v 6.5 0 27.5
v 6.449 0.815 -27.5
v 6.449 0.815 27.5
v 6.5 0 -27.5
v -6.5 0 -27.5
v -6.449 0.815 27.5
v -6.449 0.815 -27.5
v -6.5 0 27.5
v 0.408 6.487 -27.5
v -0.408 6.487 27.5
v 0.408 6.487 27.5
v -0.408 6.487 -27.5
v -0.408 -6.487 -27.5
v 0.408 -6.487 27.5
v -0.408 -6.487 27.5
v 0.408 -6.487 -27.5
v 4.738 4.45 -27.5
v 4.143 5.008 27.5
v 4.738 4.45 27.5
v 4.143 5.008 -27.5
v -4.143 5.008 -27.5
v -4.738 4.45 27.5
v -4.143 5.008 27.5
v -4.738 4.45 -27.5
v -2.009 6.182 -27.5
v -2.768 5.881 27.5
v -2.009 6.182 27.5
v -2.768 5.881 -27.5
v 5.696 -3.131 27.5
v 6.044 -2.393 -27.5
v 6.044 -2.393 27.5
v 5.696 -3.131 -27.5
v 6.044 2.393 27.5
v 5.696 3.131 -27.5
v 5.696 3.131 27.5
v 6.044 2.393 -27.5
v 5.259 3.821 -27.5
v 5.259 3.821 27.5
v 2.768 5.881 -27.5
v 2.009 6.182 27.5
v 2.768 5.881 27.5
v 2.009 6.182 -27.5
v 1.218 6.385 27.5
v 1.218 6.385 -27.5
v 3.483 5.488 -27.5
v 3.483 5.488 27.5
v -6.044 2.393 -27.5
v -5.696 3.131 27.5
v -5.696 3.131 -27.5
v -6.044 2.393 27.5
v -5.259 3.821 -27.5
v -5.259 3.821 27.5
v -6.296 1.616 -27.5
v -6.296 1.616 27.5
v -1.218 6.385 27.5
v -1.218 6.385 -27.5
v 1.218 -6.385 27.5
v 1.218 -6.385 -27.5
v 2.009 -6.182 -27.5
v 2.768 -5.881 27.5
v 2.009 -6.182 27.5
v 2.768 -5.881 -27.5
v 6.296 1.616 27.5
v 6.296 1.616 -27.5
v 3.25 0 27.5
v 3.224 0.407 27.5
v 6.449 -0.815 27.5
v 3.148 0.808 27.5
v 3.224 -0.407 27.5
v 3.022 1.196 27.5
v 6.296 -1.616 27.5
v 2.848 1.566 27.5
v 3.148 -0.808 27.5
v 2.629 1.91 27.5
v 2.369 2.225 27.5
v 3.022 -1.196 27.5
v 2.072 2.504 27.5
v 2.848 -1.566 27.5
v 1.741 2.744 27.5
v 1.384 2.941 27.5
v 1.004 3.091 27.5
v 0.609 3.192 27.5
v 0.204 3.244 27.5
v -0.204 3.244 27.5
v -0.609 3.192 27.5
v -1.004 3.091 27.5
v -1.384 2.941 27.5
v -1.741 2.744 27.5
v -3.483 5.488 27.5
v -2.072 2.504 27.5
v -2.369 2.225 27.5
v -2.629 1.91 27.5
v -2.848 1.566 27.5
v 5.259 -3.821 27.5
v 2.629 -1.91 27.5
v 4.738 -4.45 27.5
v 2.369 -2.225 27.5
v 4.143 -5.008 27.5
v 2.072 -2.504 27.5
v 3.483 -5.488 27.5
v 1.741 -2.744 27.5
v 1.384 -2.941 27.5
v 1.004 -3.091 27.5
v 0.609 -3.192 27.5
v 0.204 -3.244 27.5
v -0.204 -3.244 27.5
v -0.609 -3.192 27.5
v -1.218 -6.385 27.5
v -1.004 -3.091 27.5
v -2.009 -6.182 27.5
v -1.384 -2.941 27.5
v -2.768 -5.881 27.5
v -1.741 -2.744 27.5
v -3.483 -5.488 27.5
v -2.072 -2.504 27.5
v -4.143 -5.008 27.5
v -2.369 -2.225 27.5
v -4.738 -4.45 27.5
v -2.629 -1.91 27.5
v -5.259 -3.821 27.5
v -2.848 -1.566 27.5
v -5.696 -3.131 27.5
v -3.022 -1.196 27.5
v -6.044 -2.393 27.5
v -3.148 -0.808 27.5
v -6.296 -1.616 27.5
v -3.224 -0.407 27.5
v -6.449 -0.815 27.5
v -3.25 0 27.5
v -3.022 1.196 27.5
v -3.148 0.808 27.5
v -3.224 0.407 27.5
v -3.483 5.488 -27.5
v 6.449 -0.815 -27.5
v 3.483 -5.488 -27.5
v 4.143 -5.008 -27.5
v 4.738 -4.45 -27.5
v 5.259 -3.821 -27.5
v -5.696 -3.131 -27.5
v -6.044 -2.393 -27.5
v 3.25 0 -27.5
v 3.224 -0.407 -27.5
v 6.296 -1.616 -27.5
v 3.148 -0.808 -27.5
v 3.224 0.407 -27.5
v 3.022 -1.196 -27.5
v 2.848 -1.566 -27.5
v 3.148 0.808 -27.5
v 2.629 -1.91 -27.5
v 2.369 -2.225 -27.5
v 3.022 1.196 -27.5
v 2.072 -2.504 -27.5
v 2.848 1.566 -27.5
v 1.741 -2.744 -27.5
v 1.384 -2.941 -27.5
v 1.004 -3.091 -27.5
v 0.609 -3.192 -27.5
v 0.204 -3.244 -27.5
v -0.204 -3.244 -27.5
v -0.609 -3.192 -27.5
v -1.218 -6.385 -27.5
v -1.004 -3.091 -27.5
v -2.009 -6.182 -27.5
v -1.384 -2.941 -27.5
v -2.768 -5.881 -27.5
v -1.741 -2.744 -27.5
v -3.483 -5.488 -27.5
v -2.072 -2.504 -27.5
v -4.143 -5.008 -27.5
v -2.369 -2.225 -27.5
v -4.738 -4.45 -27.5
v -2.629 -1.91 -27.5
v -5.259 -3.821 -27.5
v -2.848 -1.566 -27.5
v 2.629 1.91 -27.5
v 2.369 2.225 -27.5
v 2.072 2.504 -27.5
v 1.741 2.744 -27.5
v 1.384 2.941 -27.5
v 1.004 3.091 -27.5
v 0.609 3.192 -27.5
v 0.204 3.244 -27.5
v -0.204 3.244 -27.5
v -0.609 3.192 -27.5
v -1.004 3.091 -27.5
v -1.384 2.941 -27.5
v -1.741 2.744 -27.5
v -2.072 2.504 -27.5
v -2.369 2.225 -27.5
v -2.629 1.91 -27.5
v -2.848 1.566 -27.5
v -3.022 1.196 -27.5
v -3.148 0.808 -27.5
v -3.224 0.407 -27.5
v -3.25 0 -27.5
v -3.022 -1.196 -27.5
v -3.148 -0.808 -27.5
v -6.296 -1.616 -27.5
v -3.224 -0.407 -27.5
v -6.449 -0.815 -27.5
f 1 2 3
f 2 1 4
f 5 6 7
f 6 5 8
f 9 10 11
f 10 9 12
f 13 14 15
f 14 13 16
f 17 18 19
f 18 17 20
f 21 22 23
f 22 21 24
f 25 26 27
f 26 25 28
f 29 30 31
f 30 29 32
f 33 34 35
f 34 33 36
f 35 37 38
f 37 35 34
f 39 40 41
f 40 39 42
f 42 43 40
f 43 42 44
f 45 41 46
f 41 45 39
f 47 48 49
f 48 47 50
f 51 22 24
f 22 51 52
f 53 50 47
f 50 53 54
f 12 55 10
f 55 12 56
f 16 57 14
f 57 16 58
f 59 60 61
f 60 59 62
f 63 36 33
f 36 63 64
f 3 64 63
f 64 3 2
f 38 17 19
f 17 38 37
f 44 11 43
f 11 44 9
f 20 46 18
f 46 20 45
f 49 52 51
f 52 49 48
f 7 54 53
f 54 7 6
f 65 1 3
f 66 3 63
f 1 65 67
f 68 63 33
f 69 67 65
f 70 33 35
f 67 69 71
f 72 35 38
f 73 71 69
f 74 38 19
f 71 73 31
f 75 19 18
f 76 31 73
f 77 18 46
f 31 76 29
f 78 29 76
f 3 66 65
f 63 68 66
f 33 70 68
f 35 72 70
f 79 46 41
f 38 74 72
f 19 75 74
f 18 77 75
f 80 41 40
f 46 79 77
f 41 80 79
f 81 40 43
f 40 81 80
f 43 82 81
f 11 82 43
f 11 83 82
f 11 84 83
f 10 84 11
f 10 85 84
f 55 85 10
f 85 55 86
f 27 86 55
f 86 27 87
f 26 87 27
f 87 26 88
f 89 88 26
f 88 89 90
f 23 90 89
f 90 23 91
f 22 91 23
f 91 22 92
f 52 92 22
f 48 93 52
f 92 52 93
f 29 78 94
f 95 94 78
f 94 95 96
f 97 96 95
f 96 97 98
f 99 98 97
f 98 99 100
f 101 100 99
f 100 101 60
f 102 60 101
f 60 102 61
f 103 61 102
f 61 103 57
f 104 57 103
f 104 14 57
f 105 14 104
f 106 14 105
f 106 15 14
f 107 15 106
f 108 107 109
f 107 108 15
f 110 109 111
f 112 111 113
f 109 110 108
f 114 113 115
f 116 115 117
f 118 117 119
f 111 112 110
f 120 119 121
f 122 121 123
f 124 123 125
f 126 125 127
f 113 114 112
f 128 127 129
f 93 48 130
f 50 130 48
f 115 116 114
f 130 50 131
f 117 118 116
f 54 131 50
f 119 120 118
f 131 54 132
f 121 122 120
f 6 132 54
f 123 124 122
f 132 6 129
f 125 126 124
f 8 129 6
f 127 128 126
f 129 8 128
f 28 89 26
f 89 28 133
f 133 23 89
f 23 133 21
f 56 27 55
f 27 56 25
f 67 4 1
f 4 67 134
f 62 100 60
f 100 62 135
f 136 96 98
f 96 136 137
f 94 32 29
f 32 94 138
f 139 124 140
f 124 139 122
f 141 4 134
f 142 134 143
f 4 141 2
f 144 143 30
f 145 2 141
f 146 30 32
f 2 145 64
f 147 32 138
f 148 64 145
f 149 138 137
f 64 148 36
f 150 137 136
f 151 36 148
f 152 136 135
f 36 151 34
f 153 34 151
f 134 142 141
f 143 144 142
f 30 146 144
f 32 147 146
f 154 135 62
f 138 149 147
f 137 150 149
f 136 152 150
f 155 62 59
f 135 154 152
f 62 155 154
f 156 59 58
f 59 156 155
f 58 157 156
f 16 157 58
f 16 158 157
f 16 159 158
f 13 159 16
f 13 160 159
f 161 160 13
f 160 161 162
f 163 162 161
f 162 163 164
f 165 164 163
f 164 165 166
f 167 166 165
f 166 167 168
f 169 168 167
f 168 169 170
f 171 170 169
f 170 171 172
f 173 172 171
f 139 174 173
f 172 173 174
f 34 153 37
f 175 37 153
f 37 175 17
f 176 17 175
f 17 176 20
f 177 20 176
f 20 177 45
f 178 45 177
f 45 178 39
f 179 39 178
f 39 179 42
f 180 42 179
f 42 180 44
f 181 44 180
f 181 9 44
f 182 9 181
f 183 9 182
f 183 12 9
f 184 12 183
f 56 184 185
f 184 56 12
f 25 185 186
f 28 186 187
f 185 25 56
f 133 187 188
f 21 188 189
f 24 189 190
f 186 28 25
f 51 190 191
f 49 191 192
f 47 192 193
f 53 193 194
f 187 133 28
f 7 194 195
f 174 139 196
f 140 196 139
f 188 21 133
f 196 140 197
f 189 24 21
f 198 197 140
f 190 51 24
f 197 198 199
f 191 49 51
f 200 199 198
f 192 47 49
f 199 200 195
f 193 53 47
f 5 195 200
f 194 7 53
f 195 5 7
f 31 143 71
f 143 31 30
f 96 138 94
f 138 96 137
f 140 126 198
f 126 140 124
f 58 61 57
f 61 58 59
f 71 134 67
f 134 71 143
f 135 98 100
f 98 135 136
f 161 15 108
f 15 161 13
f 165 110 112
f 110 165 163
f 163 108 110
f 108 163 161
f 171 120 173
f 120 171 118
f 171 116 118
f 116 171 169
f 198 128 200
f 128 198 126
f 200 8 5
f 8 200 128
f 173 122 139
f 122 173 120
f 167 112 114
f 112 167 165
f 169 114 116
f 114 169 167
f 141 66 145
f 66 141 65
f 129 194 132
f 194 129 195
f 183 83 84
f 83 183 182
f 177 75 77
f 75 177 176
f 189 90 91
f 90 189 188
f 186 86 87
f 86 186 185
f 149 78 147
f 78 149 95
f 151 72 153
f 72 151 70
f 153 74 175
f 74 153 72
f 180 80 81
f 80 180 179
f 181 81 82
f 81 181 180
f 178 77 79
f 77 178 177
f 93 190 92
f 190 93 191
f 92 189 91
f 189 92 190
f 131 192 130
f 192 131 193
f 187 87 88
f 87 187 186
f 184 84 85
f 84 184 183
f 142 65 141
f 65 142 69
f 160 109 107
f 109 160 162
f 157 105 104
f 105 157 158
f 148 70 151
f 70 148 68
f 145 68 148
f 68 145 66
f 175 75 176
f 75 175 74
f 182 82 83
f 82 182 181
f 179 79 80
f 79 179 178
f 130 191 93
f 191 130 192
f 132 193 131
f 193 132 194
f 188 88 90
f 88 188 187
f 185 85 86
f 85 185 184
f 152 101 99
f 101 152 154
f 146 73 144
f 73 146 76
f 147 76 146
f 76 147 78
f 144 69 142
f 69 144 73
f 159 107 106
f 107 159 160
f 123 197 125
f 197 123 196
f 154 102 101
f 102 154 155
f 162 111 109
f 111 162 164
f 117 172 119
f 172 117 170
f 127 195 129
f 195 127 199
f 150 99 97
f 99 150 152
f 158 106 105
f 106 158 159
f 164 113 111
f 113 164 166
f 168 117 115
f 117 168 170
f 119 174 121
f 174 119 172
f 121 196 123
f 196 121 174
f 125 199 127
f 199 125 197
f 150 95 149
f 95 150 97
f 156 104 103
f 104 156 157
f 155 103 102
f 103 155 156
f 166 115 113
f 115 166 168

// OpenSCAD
$fn = 50;


difference() {
	union() {
		translate(v = [0, 0, -27.5000000000]) {
			cylinder(h = 55, r = 6.5000000000);
		}
	}
	union() {
		translate(v = [0, 0, -100.0000000000]) {
			cylinder(h = 200, r = 3.2500000000);
		}
	}
}
